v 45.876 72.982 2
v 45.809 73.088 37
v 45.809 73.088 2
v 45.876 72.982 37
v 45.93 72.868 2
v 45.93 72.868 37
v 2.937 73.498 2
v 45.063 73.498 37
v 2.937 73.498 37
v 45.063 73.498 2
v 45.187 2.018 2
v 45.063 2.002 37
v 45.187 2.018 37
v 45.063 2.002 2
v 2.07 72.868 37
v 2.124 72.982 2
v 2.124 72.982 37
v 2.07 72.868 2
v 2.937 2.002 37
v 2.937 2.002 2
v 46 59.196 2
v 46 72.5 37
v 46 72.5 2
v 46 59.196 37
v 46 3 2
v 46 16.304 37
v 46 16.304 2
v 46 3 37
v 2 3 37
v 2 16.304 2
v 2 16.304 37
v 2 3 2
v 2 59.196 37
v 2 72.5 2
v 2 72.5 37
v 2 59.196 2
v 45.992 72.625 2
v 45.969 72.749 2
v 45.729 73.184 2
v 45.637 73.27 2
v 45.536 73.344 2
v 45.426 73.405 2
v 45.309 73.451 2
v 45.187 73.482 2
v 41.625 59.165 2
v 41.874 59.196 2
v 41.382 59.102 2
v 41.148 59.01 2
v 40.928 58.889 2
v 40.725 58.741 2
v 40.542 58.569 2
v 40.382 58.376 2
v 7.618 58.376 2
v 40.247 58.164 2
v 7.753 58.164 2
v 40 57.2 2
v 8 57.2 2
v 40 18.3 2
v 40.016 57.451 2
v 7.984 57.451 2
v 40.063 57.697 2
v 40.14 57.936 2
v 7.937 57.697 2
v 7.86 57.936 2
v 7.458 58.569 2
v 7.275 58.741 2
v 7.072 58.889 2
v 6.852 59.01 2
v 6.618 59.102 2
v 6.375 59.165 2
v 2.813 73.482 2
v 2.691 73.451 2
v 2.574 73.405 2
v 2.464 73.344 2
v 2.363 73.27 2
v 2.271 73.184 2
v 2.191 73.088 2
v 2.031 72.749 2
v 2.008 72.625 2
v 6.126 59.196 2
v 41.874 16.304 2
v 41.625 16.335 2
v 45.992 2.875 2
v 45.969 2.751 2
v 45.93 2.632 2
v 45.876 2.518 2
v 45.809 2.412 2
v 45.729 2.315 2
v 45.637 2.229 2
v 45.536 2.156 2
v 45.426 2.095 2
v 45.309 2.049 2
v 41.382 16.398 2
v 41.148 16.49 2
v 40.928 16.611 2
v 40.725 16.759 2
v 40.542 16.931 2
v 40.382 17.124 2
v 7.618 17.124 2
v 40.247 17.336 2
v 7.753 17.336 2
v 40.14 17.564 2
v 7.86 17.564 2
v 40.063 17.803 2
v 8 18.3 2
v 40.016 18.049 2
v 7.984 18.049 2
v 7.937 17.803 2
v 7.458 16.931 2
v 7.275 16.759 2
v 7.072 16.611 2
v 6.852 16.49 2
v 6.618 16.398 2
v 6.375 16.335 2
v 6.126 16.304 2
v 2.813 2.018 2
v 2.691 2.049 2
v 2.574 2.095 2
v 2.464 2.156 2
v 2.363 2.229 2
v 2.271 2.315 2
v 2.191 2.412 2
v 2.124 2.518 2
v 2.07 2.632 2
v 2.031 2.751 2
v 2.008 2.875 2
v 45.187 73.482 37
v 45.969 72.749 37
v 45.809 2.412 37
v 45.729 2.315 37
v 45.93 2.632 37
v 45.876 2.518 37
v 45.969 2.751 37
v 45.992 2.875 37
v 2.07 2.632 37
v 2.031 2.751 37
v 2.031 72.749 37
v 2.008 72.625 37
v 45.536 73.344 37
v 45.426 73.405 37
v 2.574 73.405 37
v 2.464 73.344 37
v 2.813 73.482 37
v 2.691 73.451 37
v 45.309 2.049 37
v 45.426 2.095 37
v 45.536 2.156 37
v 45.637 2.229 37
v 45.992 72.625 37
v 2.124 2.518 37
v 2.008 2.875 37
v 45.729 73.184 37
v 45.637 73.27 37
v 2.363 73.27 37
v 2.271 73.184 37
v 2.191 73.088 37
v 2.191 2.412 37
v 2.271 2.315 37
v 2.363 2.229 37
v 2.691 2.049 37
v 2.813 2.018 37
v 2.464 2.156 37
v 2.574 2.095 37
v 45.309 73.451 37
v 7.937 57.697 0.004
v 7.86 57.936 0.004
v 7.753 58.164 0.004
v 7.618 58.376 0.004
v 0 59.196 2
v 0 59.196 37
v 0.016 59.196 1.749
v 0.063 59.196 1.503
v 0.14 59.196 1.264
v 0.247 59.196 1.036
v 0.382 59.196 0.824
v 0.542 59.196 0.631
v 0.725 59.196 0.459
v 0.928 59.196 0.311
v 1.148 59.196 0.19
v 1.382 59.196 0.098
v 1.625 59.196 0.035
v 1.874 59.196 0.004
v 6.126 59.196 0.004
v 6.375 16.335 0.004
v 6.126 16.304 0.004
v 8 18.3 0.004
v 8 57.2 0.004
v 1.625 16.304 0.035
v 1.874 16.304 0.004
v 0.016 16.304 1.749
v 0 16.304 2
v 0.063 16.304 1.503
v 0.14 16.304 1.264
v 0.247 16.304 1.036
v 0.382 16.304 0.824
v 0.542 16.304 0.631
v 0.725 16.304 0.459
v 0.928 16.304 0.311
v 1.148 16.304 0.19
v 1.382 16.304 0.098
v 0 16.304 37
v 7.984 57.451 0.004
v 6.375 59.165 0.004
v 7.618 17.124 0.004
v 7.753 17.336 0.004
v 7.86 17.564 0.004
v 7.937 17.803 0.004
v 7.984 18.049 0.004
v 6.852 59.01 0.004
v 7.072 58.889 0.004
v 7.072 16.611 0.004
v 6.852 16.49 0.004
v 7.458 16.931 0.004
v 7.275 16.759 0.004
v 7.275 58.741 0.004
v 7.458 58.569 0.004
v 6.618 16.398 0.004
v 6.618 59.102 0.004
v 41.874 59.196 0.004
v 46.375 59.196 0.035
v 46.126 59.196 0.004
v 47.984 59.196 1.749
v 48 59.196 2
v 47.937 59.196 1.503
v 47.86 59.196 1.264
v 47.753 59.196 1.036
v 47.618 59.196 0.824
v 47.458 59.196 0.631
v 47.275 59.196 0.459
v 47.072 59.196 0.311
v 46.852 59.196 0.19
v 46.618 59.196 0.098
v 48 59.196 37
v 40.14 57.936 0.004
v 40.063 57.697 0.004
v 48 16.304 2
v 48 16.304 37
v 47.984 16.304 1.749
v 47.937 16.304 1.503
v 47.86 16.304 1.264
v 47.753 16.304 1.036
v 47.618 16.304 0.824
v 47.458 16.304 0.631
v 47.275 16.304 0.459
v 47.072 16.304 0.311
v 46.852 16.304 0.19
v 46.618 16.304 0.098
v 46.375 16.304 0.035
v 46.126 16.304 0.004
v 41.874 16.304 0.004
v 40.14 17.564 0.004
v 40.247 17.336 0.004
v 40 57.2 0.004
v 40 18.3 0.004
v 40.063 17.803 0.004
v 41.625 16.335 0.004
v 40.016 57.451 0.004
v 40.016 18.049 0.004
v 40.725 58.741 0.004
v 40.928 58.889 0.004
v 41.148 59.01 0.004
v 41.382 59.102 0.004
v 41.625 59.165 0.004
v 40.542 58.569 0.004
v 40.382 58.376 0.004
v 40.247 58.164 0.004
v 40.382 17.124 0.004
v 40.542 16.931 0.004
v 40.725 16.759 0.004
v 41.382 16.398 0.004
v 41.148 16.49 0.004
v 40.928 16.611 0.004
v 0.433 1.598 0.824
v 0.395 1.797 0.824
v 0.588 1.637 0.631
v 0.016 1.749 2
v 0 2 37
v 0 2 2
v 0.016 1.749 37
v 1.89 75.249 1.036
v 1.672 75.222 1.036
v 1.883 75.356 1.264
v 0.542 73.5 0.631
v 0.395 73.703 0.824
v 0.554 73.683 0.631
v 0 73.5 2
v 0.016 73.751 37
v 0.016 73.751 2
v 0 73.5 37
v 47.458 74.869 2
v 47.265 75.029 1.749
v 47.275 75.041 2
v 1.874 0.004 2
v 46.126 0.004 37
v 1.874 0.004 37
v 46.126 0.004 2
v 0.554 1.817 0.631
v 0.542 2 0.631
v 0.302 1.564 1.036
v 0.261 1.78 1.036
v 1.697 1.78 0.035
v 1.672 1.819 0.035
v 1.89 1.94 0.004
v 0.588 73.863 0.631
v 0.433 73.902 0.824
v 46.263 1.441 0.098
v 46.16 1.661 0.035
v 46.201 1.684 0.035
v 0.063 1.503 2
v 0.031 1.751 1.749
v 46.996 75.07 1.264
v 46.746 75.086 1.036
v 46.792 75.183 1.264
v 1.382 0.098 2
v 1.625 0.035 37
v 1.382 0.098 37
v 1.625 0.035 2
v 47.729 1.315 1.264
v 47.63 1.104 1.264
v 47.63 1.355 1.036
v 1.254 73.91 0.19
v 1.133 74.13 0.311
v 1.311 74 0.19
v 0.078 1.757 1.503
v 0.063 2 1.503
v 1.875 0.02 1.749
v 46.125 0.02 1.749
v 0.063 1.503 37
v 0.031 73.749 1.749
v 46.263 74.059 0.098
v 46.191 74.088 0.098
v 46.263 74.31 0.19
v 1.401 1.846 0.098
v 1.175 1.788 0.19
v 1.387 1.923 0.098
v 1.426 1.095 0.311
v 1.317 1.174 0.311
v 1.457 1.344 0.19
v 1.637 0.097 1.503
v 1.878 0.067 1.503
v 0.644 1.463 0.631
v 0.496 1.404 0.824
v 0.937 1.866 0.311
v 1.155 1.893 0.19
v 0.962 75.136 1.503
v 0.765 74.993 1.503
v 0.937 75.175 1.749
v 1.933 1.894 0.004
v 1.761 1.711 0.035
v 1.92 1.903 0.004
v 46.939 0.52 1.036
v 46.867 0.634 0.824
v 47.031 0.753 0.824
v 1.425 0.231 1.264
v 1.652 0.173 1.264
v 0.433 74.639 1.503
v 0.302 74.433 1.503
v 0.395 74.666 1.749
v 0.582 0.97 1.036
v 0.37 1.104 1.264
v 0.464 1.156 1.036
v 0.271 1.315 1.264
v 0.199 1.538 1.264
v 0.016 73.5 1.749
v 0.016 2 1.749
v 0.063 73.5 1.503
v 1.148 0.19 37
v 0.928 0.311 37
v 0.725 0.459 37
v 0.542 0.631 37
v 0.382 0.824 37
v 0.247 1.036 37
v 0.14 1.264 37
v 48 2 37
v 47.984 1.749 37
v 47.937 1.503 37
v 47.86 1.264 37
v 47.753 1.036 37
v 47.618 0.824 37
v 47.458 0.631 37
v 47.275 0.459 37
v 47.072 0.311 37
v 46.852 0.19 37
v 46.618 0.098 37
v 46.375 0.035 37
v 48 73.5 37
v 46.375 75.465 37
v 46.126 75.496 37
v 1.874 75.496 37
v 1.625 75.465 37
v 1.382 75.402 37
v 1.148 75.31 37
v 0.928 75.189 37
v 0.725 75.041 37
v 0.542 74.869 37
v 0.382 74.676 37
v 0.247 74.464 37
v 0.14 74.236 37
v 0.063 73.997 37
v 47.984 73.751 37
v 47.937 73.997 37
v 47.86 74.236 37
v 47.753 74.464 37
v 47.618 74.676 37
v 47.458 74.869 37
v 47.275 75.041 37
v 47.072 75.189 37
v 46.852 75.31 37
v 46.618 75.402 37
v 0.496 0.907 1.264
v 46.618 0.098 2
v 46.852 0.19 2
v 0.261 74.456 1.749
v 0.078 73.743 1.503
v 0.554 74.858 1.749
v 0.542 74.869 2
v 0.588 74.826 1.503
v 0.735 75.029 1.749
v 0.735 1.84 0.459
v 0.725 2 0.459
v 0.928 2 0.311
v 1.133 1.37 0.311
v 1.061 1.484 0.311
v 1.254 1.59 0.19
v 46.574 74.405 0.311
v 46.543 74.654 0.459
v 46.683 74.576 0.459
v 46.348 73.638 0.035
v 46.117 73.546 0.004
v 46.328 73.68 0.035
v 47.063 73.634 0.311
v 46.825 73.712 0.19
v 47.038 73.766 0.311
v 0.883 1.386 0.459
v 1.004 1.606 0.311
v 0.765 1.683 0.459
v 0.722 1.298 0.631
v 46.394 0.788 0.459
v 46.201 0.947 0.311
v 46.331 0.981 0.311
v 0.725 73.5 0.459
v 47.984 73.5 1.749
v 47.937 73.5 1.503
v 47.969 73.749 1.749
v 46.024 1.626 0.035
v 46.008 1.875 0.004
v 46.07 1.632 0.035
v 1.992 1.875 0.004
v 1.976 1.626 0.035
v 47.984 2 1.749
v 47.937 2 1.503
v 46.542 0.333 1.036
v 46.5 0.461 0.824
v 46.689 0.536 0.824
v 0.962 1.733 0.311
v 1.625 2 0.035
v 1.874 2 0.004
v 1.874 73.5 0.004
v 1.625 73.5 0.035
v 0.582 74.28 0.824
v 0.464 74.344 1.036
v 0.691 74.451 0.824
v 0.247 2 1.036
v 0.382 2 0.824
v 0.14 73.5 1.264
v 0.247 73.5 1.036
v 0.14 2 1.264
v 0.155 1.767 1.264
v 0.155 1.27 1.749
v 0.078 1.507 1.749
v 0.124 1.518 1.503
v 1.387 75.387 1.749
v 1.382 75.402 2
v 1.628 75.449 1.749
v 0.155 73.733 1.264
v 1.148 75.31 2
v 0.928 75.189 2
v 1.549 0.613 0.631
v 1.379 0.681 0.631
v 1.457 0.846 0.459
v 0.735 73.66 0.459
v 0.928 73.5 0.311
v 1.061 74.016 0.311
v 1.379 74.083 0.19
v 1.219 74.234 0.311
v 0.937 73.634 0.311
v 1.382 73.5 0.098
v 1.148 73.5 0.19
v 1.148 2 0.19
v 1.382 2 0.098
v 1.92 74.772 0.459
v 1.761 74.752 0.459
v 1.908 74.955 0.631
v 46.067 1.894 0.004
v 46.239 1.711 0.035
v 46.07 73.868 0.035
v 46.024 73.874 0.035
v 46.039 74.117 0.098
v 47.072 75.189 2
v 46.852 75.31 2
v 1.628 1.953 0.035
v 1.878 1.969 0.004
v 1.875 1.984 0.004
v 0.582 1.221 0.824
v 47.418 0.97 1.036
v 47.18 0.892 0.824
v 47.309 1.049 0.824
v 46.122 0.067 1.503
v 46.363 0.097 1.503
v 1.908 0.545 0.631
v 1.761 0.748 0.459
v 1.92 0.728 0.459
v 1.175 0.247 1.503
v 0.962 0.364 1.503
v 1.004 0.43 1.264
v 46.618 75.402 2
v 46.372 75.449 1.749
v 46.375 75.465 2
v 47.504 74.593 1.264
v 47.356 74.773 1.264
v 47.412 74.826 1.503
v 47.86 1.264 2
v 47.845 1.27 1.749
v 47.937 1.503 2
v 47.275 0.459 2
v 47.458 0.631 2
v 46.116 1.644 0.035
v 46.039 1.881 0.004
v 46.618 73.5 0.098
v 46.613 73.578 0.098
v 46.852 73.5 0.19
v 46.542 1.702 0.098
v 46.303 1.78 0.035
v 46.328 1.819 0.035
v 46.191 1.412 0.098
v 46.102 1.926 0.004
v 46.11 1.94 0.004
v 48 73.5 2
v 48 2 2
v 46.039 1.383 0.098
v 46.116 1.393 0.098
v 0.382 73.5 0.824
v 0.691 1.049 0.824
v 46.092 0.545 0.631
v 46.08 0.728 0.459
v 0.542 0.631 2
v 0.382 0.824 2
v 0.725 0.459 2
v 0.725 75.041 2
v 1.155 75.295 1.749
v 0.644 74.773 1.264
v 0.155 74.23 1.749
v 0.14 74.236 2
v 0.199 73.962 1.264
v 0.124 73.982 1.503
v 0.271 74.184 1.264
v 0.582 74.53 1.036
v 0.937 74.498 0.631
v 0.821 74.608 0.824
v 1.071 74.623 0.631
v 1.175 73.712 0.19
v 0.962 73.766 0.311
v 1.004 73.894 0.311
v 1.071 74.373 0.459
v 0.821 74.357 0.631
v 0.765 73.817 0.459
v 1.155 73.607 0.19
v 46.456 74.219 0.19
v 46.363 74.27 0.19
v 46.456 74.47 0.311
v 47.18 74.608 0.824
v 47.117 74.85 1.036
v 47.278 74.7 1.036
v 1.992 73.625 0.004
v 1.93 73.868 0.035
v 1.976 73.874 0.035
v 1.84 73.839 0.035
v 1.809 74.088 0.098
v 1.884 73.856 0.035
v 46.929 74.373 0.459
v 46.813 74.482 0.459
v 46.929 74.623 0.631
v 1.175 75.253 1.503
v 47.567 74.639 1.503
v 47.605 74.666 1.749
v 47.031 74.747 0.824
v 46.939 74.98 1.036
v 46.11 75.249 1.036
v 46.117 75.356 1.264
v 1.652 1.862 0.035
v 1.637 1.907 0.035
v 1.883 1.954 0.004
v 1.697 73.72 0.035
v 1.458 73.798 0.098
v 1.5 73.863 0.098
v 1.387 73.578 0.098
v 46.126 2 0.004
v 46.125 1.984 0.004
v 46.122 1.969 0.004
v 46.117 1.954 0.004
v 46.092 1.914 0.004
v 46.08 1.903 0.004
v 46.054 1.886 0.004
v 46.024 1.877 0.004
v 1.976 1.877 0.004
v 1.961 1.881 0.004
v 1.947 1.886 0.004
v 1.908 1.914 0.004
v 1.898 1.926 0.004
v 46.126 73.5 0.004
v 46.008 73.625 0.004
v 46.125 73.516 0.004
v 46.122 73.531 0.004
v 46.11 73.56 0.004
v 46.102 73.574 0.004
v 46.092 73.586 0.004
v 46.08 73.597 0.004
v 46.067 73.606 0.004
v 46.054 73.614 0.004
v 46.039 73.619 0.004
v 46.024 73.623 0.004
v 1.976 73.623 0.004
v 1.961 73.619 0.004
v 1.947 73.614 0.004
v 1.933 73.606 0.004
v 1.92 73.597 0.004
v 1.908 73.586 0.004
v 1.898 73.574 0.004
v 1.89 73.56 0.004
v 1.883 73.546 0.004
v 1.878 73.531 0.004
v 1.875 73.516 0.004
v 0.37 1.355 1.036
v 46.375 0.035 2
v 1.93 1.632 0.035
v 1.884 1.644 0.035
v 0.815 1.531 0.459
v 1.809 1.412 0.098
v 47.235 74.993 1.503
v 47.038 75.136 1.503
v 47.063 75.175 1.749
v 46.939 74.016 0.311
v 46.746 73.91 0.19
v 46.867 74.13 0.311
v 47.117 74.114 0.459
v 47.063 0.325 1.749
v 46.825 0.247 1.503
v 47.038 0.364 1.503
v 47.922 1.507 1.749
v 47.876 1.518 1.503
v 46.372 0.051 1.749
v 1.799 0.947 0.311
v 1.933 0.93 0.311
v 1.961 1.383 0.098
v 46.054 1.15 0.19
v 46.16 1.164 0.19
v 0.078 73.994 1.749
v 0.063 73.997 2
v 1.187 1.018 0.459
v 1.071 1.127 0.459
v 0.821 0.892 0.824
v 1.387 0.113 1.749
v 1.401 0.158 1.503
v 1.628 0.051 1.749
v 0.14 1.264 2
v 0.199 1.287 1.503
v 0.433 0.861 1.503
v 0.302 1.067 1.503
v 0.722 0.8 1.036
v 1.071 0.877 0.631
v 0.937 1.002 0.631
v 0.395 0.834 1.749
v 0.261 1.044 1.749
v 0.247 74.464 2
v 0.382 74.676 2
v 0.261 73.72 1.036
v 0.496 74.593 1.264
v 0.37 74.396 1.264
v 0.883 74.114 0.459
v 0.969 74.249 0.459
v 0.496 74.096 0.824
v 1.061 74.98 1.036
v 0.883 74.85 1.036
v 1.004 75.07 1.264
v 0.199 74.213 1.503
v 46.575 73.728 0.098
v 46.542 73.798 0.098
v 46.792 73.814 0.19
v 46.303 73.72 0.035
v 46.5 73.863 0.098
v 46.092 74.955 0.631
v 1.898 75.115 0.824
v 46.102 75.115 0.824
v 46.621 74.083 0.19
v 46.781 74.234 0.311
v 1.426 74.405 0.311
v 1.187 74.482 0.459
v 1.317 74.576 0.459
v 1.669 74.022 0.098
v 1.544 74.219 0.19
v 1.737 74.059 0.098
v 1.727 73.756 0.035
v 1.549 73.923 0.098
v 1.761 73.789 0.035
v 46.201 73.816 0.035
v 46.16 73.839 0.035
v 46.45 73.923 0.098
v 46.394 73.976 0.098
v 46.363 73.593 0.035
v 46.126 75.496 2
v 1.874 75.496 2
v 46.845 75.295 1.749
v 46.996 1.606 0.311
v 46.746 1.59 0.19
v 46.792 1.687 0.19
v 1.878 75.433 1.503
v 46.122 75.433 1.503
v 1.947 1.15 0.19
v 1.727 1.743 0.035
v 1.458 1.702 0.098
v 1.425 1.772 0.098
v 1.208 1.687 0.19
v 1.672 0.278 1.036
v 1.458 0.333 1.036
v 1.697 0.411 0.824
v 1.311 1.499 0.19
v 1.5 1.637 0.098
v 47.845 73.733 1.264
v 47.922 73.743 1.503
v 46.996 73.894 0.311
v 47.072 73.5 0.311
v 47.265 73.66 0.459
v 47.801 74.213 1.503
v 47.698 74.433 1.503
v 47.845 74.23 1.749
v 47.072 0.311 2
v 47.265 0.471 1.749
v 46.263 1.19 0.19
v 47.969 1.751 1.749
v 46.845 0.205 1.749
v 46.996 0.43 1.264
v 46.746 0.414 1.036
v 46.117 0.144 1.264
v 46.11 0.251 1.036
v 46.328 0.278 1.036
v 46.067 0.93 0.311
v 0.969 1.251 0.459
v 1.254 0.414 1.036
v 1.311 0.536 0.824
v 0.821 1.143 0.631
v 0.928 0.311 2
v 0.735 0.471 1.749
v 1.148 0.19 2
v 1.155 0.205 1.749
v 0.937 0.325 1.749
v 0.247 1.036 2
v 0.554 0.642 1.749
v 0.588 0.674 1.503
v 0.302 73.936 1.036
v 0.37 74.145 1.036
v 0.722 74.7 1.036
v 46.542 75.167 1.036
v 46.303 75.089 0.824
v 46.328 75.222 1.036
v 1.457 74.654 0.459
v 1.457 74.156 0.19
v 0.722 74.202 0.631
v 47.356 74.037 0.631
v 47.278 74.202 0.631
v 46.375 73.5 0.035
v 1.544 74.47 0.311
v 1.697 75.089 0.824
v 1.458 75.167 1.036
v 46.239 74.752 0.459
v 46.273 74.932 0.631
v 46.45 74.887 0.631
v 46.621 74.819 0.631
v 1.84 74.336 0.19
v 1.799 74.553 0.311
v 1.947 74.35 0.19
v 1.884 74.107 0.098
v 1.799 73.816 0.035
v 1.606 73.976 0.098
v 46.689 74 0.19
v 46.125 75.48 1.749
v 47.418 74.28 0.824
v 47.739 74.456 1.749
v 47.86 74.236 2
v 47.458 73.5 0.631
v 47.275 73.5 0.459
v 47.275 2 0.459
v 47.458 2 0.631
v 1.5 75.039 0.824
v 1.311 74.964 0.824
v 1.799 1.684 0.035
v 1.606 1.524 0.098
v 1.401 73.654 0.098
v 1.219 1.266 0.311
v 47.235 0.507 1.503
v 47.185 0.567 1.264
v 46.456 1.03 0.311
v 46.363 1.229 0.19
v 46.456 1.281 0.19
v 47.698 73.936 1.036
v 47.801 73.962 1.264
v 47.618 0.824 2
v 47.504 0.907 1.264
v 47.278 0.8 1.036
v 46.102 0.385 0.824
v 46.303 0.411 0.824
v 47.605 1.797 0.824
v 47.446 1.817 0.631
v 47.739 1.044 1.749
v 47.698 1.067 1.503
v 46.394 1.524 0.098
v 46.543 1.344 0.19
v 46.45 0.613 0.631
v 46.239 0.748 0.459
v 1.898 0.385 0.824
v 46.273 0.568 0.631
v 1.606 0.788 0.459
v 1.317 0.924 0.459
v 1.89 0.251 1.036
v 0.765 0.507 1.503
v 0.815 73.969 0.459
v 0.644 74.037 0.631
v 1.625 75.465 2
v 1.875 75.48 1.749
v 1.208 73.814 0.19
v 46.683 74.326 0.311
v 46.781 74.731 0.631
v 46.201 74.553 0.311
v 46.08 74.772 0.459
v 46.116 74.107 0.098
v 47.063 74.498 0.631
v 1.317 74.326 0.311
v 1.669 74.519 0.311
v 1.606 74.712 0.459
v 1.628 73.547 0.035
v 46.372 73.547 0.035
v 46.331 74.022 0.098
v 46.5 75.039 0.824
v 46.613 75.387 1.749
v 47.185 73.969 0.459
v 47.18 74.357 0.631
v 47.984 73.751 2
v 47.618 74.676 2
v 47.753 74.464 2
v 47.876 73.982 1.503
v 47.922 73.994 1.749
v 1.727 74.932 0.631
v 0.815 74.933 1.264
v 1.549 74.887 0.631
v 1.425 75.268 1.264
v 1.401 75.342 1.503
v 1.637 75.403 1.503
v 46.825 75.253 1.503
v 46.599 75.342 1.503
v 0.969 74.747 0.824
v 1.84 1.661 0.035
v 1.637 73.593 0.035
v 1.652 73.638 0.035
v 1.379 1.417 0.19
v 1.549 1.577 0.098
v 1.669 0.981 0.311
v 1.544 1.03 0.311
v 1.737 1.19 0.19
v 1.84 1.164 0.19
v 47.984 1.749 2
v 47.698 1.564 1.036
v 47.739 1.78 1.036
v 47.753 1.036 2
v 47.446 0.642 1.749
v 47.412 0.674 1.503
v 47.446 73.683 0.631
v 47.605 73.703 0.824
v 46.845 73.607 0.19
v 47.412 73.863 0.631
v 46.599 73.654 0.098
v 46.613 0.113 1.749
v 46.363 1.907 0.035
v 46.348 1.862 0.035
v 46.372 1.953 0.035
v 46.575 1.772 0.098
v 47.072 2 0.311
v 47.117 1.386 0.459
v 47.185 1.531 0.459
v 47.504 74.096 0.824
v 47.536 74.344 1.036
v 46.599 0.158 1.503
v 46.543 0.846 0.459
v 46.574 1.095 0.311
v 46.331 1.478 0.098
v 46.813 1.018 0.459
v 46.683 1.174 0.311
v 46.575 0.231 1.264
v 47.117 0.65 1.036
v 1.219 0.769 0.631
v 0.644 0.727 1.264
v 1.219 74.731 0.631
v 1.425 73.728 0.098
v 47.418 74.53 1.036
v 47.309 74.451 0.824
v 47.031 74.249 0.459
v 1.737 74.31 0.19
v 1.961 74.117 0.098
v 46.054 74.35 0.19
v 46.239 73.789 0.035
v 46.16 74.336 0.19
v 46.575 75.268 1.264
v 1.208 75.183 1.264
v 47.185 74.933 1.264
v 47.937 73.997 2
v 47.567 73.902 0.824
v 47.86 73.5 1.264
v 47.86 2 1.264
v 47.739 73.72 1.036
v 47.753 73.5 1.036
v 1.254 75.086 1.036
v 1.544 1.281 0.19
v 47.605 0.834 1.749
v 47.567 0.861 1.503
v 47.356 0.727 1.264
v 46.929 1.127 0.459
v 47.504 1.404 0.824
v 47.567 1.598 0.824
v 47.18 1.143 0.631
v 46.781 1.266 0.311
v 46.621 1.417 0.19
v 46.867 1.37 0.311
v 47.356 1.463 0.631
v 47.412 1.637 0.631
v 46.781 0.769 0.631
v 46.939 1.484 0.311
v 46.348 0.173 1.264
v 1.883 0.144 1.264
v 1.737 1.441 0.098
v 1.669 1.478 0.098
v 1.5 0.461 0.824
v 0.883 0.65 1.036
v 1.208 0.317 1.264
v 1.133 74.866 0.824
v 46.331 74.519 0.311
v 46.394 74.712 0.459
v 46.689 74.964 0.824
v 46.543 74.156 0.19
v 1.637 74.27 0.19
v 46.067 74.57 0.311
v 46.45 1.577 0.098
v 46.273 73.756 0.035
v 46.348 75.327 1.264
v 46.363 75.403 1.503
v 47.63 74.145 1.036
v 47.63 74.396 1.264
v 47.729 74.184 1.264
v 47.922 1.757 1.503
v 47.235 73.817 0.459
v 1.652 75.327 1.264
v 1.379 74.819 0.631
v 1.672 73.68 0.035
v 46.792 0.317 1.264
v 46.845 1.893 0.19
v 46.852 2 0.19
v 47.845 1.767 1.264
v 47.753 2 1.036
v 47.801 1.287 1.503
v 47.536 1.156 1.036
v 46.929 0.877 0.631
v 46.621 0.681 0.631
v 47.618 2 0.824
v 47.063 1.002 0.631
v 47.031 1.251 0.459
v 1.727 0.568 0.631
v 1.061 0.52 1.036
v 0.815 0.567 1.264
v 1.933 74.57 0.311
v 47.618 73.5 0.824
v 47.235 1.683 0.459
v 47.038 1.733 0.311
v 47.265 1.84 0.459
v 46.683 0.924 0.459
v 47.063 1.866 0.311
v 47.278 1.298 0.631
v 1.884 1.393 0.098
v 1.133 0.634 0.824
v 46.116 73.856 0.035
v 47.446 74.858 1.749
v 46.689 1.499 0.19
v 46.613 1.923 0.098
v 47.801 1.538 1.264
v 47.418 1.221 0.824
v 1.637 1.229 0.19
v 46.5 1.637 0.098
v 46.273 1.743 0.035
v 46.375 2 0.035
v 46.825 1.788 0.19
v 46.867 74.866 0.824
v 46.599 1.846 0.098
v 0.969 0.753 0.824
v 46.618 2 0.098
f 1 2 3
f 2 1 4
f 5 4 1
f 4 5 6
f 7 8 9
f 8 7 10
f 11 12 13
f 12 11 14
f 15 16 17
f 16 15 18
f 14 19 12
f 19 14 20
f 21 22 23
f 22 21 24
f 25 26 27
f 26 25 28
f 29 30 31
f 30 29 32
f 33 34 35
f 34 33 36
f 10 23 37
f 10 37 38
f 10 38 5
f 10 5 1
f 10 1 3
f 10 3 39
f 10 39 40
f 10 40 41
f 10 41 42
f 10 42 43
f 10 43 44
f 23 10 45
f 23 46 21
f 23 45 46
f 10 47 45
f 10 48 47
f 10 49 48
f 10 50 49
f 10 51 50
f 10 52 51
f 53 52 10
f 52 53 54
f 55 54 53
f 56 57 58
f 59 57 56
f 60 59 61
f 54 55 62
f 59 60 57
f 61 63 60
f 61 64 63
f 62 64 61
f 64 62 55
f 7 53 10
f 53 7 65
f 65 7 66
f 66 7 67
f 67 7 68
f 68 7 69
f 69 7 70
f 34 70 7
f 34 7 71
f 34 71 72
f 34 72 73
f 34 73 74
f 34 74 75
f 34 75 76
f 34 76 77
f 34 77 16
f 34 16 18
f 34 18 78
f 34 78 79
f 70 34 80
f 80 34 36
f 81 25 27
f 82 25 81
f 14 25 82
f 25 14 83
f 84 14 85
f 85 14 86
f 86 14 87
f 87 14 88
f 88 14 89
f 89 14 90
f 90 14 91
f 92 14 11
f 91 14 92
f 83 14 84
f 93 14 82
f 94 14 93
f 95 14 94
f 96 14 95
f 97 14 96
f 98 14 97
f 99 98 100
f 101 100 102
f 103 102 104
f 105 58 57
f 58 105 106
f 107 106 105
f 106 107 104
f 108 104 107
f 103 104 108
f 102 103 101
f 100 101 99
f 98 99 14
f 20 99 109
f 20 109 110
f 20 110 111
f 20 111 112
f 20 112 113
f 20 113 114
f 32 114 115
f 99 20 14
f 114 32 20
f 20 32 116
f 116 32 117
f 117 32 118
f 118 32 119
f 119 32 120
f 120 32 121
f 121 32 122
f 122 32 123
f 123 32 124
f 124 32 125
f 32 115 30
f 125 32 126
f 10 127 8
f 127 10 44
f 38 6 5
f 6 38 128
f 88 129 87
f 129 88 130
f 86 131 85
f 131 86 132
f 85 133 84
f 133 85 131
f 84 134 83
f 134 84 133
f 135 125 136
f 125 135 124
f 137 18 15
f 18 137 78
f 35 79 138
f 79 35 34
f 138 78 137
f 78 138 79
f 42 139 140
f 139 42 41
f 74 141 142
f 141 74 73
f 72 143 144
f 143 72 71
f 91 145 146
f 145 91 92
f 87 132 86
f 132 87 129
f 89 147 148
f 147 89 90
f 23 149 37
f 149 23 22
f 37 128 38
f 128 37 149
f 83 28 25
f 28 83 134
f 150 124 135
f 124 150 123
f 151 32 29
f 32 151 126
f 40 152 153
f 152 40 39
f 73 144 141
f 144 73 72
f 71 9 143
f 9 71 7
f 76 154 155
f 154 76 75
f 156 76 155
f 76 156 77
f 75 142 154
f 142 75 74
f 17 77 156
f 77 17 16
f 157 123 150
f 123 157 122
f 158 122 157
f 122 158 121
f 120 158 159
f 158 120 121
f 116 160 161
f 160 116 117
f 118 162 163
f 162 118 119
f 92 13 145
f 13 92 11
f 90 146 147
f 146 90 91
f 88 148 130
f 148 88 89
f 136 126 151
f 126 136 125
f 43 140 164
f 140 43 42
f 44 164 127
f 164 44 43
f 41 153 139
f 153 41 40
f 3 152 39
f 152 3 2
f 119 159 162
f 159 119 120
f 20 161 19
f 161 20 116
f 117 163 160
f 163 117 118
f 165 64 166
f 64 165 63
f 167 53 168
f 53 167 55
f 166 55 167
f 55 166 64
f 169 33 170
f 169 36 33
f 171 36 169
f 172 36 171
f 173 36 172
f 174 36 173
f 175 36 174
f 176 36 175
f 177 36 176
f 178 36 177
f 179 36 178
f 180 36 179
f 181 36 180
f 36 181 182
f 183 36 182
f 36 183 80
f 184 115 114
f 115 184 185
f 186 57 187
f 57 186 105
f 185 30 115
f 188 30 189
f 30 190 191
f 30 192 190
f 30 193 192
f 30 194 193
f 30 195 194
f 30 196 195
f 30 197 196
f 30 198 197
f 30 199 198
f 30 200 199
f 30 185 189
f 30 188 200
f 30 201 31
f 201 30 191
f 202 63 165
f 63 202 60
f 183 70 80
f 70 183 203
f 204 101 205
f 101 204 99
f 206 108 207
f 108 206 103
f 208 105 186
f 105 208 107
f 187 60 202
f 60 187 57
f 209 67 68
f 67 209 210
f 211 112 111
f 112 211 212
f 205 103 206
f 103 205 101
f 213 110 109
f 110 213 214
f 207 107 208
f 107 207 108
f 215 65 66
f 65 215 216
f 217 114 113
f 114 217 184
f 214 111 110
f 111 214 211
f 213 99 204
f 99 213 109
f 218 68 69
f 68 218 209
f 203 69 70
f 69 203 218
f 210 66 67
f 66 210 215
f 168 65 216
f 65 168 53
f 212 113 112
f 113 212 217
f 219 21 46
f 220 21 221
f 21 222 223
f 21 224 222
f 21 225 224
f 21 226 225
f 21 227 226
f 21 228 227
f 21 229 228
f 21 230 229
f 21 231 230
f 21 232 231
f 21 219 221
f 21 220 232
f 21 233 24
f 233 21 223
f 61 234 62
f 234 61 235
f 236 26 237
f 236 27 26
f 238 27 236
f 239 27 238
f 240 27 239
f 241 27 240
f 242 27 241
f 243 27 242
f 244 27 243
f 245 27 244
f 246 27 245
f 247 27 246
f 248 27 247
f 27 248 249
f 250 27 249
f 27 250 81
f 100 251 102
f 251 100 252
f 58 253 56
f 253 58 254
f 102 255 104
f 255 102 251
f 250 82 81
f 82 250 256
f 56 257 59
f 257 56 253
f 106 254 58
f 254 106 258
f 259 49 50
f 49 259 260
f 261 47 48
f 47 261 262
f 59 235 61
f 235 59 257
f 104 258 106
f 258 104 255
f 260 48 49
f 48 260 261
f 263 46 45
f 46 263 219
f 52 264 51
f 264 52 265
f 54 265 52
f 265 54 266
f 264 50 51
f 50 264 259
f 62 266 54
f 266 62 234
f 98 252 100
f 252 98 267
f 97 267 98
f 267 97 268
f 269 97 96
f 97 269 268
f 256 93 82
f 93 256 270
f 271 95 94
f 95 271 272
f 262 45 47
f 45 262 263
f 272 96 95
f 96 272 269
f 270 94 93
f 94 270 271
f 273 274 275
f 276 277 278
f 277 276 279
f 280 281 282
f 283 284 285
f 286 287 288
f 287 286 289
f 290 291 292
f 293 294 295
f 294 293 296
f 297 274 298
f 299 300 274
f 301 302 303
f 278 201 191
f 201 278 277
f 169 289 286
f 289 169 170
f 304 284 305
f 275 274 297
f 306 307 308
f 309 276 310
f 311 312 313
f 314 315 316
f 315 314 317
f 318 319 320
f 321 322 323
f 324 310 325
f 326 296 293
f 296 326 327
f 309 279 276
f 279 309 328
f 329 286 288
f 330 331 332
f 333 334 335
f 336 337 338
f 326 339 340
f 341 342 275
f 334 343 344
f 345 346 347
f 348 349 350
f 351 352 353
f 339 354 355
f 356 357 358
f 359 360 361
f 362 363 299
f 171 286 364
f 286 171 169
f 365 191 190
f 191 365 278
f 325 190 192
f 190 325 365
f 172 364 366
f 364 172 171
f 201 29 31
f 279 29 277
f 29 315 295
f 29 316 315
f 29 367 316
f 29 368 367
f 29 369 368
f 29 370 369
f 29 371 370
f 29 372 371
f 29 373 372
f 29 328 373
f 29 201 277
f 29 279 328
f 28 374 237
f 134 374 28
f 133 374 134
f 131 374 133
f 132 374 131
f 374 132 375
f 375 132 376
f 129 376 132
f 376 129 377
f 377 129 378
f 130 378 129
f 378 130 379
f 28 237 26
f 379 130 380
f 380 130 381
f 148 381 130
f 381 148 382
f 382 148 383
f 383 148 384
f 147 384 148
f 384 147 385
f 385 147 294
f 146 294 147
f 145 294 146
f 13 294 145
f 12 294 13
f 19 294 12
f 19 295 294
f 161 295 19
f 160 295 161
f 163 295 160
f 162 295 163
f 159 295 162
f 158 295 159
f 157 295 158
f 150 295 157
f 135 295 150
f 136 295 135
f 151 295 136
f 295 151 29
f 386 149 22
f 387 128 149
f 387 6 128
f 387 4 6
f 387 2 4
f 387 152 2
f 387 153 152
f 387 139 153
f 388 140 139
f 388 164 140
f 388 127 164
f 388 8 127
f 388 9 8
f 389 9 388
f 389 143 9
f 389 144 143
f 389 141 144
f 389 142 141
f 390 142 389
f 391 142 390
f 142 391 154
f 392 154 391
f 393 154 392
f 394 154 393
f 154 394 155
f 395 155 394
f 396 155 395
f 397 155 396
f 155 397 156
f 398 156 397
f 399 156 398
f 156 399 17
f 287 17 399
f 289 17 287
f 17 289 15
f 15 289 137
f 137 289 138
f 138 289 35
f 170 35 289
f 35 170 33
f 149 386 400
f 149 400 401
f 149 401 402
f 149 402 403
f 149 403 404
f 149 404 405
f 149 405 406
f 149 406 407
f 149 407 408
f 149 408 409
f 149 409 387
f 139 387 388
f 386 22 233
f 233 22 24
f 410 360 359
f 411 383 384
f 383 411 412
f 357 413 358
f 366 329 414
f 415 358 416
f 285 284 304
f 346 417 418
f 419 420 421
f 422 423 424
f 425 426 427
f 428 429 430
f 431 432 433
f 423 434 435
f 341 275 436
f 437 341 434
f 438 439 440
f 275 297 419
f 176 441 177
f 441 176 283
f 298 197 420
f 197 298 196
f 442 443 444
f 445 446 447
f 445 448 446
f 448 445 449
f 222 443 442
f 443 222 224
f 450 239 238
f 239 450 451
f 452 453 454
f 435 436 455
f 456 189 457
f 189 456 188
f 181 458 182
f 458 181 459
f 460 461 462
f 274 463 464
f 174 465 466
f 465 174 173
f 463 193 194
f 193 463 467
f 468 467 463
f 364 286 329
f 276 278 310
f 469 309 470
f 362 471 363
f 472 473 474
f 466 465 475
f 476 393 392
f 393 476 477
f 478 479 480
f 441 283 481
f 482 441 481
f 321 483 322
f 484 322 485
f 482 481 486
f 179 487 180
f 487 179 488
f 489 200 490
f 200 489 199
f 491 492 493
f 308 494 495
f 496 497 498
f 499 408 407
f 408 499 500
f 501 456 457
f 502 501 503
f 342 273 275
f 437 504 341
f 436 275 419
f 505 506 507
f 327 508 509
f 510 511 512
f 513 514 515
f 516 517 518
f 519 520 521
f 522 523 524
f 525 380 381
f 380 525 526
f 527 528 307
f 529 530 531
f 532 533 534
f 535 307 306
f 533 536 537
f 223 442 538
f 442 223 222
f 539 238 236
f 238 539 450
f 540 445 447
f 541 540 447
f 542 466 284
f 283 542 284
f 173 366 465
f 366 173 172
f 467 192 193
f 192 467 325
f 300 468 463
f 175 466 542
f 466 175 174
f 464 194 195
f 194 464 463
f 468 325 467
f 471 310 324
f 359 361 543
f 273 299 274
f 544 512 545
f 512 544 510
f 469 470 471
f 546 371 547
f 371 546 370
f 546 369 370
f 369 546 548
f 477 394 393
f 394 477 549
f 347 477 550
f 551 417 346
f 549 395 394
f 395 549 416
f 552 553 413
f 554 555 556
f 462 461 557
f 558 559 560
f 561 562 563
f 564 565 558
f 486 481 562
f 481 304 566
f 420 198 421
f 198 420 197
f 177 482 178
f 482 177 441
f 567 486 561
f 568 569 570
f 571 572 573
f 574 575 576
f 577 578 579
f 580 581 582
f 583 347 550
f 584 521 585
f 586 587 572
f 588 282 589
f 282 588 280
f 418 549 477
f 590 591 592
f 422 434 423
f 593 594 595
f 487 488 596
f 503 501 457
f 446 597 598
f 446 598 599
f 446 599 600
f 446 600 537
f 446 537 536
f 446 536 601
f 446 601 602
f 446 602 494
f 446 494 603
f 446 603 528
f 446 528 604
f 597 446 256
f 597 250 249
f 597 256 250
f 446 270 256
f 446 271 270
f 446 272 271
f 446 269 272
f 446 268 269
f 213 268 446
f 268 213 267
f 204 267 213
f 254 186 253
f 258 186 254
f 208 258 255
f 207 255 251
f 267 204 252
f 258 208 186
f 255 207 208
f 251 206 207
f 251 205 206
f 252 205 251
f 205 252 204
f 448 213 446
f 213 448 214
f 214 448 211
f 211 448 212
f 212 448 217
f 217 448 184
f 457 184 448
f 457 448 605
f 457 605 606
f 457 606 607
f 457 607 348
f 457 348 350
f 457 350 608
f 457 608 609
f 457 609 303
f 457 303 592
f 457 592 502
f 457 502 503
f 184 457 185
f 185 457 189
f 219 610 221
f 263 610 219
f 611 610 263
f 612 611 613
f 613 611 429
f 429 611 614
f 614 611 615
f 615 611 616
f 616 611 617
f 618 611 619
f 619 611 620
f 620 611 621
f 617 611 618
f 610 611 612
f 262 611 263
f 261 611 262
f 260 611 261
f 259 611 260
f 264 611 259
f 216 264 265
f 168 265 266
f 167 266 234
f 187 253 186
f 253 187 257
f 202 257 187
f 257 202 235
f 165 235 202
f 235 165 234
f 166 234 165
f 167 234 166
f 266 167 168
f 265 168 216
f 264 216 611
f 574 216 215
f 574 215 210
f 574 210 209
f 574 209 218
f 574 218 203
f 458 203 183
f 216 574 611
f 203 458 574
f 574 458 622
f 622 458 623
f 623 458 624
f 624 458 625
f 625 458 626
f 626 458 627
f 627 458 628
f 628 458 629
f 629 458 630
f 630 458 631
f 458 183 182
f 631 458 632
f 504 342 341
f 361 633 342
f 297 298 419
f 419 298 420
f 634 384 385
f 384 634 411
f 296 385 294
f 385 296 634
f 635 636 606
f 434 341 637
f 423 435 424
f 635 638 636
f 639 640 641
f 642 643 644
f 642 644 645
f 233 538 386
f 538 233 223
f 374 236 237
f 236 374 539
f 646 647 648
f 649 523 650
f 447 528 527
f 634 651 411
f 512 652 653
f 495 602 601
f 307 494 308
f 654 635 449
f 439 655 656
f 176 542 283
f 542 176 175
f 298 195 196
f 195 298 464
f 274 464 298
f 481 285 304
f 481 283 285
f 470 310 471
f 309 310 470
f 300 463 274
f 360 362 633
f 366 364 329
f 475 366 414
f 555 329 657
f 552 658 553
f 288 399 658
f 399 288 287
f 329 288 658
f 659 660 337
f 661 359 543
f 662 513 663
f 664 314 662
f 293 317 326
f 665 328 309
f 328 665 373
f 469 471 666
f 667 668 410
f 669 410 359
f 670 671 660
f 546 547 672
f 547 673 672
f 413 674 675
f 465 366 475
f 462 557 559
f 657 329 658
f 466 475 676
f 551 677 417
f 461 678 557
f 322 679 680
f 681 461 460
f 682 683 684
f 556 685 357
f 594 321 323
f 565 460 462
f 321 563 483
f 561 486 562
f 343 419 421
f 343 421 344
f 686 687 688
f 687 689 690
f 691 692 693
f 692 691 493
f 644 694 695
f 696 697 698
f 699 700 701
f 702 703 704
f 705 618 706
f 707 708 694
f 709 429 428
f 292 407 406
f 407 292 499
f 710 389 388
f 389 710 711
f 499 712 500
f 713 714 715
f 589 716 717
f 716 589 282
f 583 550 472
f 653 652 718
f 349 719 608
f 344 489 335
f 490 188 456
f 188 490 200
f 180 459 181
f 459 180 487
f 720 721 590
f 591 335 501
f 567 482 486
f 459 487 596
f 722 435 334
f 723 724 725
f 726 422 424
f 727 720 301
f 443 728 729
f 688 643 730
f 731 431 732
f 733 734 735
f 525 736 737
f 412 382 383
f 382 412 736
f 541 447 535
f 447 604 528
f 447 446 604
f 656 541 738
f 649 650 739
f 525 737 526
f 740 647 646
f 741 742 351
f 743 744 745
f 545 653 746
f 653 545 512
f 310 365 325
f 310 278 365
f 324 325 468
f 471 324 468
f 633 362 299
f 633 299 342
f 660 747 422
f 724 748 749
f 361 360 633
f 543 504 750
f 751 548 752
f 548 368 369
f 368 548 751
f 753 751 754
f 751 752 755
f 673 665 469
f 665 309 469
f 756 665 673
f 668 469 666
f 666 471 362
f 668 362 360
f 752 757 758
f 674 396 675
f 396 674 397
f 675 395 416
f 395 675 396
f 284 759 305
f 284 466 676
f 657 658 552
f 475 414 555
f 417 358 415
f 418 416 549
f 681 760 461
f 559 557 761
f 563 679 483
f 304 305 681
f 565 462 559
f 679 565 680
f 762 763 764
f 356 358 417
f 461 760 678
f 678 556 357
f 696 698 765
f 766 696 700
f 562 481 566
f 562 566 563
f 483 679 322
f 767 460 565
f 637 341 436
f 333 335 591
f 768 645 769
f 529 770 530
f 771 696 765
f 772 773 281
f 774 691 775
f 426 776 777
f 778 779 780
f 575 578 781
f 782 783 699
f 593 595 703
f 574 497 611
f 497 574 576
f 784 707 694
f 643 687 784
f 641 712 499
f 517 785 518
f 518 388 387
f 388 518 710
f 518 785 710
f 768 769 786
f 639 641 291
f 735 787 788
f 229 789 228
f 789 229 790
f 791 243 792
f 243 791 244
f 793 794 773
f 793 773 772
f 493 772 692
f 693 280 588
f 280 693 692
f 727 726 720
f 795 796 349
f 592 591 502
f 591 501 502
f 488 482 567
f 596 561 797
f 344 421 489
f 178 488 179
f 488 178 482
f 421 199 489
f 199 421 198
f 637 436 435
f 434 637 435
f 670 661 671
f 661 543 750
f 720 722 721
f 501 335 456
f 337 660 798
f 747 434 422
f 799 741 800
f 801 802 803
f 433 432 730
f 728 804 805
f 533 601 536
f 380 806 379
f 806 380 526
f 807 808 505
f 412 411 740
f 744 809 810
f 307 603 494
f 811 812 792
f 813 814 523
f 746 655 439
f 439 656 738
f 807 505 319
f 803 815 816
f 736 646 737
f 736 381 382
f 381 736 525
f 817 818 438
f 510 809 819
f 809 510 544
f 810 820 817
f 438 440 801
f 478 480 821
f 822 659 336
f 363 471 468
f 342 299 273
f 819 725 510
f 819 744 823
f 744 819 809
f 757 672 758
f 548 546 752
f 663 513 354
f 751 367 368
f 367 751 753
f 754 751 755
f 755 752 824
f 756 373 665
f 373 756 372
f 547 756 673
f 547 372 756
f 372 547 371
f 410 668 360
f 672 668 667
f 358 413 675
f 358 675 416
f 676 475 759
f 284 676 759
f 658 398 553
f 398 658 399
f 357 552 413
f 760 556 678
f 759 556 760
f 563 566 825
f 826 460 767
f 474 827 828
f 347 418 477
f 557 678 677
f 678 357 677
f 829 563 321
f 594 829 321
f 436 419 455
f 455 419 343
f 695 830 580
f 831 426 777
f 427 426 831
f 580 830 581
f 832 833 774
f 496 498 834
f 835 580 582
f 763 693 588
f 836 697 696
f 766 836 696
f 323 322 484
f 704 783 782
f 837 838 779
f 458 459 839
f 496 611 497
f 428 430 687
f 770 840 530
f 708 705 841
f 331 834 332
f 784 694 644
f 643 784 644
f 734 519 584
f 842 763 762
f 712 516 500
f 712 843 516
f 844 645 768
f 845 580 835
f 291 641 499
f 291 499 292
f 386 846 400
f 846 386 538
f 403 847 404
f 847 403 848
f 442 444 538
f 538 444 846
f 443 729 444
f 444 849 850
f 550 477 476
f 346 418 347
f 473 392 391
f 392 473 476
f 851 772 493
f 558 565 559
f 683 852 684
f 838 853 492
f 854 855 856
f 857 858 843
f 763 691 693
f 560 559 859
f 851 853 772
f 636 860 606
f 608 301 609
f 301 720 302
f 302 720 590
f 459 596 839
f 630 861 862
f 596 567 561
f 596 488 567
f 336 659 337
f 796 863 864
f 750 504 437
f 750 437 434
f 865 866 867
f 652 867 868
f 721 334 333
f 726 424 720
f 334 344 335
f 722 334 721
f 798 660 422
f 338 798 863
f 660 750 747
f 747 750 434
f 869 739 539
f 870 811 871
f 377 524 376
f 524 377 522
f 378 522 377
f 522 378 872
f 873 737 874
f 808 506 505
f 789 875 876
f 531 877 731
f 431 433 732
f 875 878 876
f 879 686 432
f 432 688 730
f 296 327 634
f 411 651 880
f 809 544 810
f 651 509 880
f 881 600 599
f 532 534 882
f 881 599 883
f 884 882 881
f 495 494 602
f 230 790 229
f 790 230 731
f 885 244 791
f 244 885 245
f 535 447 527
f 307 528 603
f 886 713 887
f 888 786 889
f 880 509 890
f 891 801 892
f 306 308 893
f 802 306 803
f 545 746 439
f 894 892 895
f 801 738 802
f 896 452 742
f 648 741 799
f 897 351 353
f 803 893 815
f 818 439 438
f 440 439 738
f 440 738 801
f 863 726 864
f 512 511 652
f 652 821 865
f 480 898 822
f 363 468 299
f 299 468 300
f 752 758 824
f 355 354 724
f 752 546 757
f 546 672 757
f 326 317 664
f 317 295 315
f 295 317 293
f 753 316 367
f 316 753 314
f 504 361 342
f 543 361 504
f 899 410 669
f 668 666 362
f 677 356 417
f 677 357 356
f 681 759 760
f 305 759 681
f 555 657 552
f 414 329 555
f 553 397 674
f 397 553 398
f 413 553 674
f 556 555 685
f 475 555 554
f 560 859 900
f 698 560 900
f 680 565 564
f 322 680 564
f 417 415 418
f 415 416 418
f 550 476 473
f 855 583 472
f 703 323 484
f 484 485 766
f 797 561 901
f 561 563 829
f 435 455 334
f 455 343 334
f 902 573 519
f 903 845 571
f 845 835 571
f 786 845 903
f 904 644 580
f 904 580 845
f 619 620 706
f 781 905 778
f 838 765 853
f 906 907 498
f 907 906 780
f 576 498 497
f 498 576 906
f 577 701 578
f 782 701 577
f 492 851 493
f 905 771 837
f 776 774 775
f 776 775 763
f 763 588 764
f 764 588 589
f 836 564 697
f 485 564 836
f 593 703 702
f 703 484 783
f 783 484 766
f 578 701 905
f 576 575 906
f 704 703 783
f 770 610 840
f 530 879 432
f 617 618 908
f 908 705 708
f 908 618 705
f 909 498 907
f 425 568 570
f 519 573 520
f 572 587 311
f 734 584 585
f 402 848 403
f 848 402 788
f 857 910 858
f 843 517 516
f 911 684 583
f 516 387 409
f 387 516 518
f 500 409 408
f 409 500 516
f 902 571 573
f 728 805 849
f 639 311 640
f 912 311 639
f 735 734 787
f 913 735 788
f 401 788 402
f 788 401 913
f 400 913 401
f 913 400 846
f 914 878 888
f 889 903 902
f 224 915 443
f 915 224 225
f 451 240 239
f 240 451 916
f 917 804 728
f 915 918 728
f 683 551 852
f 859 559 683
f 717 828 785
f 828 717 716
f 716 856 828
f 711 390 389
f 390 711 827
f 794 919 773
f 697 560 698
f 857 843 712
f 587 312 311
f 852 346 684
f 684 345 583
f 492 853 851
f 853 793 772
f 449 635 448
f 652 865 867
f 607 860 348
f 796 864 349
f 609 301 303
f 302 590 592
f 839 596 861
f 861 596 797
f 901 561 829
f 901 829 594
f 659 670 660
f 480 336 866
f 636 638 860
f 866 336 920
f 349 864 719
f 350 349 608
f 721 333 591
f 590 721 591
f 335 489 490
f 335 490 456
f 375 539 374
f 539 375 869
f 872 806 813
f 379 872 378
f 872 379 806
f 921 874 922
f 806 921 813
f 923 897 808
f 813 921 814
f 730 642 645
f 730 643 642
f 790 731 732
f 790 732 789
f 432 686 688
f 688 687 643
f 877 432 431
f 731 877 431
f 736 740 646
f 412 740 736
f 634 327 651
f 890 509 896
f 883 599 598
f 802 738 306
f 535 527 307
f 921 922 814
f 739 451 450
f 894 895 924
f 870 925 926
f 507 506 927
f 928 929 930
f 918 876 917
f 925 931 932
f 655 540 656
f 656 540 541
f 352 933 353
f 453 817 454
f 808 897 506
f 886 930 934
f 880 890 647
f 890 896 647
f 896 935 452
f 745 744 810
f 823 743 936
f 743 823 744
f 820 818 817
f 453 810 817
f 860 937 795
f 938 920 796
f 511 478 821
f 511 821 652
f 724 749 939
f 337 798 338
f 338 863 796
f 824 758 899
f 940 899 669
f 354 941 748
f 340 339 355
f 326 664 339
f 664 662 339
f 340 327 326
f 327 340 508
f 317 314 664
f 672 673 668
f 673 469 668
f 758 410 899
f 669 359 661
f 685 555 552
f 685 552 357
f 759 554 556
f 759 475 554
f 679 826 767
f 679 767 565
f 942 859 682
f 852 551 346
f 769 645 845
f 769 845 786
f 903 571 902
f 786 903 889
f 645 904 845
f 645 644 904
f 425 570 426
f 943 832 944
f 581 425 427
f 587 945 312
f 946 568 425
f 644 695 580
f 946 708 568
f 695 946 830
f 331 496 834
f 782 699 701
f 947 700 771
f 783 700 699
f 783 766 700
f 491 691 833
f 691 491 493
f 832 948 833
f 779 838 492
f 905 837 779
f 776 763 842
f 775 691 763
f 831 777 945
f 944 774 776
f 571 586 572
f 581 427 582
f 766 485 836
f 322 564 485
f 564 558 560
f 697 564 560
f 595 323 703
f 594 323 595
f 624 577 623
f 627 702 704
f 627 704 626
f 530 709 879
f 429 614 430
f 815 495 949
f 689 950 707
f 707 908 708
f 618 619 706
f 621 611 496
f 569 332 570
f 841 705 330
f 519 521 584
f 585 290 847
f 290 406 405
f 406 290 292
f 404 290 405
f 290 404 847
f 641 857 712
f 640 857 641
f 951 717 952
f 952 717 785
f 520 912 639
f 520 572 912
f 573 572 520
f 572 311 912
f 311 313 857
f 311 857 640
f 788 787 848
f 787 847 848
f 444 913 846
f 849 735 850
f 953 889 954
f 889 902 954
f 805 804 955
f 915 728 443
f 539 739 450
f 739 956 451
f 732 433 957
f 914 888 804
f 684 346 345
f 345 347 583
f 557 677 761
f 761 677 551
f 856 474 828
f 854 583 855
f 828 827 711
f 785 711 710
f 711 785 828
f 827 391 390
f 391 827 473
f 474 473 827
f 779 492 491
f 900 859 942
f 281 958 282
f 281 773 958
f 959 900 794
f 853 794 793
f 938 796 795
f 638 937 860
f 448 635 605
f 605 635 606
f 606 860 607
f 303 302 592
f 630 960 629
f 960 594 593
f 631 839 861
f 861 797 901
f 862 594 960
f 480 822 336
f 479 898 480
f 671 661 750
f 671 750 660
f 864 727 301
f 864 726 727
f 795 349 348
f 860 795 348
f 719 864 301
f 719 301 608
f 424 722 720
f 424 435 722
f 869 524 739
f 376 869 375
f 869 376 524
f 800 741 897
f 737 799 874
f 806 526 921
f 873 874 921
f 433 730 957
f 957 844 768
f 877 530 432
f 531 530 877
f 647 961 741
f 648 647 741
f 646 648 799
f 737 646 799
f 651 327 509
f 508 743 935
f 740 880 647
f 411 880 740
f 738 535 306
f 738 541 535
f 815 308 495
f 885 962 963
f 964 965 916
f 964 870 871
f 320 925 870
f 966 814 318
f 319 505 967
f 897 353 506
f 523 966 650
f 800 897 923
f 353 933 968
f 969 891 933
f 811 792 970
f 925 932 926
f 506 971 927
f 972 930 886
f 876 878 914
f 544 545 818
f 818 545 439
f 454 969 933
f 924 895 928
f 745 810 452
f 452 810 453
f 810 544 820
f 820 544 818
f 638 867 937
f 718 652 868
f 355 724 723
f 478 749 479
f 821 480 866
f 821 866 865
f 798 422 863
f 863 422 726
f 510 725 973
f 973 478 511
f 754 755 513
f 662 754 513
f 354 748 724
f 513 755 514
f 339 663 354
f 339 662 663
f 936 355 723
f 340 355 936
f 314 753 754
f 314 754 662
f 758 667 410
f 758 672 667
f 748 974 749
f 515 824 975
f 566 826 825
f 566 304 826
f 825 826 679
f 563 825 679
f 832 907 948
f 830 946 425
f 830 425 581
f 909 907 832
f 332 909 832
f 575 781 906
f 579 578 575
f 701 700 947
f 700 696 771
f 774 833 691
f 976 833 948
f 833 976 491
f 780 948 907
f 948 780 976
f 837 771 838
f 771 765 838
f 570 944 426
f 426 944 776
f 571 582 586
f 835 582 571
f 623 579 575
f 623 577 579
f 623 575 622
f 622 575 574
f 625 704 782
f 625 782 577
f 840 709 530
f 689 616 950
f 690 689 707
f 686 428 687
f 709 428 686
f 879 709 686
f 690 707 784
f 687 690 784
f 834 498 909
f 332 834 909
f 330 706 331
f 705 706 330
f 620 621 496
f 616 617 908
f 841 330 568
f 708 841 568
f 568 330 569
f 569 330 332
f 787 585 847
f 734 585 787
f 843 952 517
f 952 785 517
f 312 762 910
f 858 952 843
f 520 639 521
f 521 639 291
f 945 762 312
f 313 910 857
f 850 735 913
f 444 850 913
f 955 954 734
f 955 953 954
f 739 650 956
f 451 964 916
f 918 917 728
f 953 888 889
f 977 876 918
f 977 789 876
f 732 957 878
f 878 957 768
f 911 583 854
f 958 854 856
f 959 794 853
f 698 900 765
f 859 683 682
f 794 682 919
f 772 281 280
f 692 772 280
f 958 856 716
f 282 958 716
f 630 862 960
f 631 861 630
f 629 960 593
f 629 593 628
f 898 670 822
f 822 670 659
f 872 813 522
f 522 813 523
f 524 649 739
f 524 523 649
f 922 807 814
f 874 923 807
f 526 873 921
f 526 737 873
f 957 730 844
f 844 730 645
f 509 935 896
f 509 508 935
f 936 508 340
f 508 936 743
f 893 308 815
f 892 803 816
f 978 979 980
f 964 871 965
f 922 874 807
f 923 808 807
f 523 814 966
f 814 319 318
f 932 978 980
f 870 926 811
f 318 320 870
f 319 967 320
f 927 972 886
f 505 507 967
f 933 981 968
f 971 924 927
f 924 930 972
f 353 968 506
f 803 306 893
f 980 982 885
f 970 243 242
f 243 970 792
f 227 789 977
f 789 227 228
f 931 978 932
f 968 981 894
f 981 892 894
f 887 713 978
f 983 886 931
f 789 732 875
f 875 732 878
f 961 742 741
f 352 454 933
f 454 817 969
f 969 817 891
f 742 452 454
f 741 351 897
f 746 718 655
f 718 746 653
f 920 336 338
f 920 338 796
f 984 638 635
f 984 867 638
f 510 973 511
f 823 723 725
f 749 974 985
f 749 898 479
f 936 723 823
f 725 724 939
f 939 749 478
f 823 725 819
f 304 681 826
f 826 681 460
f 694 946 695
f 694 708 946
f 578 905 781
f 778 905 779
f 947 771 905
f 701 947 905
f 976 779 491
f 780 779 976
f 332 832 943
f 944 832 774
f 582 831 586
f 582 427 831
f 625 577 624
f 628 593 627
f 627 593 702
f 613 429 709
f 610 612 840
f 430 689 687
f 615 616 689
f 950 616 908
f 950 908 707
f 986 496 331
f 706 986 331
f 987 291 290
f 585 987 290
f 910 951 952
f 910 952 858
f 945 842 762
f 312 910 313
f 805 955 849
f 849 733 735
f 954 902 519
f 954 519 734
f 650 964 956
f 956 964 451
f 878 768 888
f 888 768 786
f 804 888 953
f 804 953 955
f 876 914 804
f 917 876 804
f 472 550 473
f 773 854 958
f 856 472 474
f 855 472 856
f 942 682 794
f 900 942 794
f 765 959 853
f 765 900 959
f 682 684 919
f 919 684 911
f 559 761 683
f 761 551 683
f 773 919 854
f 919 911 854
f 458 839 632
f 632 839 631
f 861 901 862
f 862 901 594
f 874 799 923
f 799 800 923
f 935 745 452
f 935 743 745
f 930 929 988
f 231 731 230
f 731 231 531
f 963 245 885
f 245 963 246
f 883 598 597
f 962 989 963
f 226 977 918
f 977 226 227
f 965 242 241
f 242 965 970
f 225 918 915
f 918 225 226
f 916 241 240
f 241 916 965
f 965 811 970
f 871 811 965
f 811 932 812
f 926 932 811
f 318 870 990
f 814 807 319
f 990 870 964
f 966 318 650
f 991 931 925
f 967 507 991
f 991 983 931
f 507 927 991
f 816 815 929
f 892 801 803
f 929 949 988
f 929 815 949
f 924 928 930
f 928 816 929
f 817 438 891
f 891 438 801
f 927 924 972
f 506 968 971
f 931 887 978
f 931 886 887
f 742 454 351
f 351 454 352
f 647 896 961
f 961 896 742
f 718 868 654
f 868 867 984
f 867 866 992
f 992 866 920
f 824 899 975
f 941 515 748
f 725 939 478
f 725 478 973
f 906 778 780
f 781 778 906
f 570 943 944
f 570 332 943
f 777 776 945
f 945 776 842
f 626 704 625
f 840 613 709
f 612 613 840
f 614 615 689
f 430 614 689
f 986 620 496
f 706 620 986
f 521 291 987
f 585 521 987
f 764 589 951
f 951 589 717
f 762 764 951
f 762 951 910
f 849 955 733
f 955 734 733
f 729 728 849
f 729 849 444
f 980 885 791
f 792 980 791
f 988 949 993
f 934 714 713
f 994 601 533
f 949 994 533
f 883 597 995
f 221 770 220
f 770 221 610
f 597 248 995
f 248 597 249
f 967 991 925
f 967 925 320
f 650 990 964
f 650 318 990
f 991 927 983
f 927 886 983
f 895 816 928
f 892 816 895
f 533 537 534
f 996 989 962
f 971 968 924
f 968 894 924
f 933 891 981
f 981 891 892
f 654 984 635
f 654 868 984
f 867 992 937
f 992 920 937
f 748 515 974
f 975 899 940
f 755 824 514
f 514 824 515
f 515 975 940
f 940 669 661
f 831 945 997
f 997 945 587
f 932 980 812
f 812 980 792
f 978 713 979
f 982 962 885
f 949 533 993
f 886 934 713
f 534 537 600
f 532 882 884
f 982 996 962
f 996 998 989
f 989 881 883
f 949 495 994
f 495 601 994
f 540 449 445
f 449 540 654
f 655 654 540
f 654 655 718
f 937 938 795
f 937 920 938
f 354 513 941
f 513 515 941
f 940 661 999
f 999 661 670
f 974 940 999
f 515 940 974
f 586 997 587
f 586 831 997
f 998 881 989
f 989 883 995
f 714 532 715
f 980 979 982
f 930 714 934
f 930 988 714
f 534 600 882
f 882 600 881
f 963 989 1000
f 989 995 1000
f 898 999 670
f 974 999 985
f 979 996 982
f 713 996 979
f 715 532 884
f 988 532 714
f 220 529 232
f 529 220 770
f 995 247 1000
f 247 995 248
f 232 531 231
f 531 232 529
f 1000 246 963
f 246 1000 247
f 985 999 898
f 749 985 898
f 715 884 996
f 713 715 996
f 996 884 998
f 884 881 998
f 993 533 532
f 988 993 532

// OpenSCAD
// file: ../../lib/rounded_square.scad
$bleed = 1;
$rounding = 3;

module rounded_square(size) {
  inner_size = [
    size[0] - $rounding * 2,
    size[1] - $rounding * 2,
  ];

  minkowski() {
    translate([$rounding, $rounding, 0]) {
      square(inner_size);
    }
    circle($rounding);
  }
}
// file: ../../lib/layout.scad
$padding = 0.5;
$wall_thickness = 2;

function stack_height (size, count=1) = size * count + $padding;

function padded_offset (size, index=1) = (size + $padding * 2 + $wall_thickness) * index;

function offset (size, index=1) = (size + $wall_thickness) * index;

function pad (size) = size + $padding * 2;

module offset_cylinder(d, h) {
  translate([d / 2, d / 2, 0]) {
    cylinder(d=d, h=h);
  }
}

module offset_circle(d) {
  translate([d / 2, d / 2, 0]) {
    circle(d=d);
  }
}

module offset_square(size, center=false) {
  translate([size[0] / 2, size[1] / 2, 0]) {
    square(size, center=center);
  }
}
// file: ../../lib/rounded_cube.scad
include <./rounded_square.scad>

$bleed = 1;
$rounding = 3;

// Render a rounded cube
// flat_top: do not round the top edges
// flat_bottom: do not round the bottom edges
// flat: equals flat_top && flat_bottom
// 
// Limitations:
// requires height > $rounding * 2
// flat_top || flat_bottom requires height > $rounding
// flat_top && flat_bottom requires height > $bleed
module rounded_cube(
  size, 
  flat=false, 
  flat_top=false, 
  flat_bottom=false,
  side_rounding=-1
) {
  _flat = flat || (flat_top && flat_bottom);
  _flat_top = flat_top || flat;
  _flat_bottom = flat_bottom || flat;
  _rounding = min($rounding, size[2] / 2);
  _side_rounding = side_rounding > -1 ? side_rounding: $rounding;

  assert(_side_rounding >= $rounding, "side rounding cannot be less than rounding");

  top_height = _flat_top ? 0: _rounding;
  bottom_height = _flat_bottom ? 0: _rounding;

  cube_size = [
    size[0] - _rounding * 2,
    size[1] - _rounding * 2,
    size[2] - (top_height + bottom_height)
  ];

  if (_flat_top && _flat_bottom) {
     linear_extrude(cube_size[2]) {
       rounded_square([size[0], size[1]]);
     }
  } else {
    minkowski() {
      translate([_rounding, _rounding, bottom_height]) {
        if (_side_rounding != _rounding) {
          linear_extrude(cube_size[2]) {
            rounded_square([cube_size[0], cube_size[1]], $rounding=_side_rounding);
          }
        } else {
          cube(cube_size);
        }
      }

      if (_flat_top) {
        difference() {
          sphere(_rounding);
          cylinder(_rounding, _rounding, _rounding);
        }
      } else if (_flat_bottom) {
        difference() {
          sphere(_rounding);
          translate ([0, 0, -_rounding]) {
            cylinder(_rounding, _rounding, _rounding);
          }
        }
      } else {
        sphere(_rounding);
      }
    }
  }
}
// file: ../../lib/tile_tray.scad
include <./layout.scad>

$wall_thickness = 2;
$bleed = 0.01;
$padding = 0.5;
$inset = 6;
$cutout_fraction = 0.6;

// I have no idea why it needs to be this vaule
// Seems to be to do with how the cube handles rounding
magic_pill_number = 0.4;

function tile_rounding (size, pill=false) = pill ? min(size[0], size[1]) / 2  + magic_pill_number: 1;

module tile_cutout(
  tile_size, 
  count=1, 
  roof_height,
  left_cutout=false, 
  right_cutout=false,
  top_cutout=false,
  bottom_cutout=false,
  pill=false
) {
  // No need to render any cutout if the size is zero
  if (count > 0) {
    tray_size = [
      pad(tile_size[0]),
      pad(tile_size[1]),
      stack_height(tile_size[2], count) + $bleed,
    ];
  
    floor_height = roof_height - tray_size[2] + $bleed;
  
    translate([0, 0, floor_height]) {
      rounded_cube(tray_size, flat=true, $rounding=tile_rounding(tile_size, pill));
    }
    
    if (left_cutout) {
      left_cutout_size = [
        $inset * 2 + $wall_thickness,
        tray_size[1] * $cutout_fraction,
        roof_height + $bleed * 2,
      ];
  
      translate([-left_cutout_size[0] + $inset, (tray_size[1] - left_cutout_size[1]) / 2, 0]) {
        rounded_cube(left_cutout_size, flat=true);
      }
    }
  
    if (right_cutout) {
      right_cutout_size = [
        $inset * 2 + $wall_thickness,
        tray_size[1] * $cutout_fraction,
        roof_height + $bleed * 2,
      ];
  
      translate([tray_size[0] - $inset, (tray_size[1] - right_cutout_size[1]) / 2, 0]) {
        rounded_cube(right_cutout_size, flat=true);
      }
    }
  
    if (top_cutout) {
      top_cutout_size = [
        tray_size[0] * $cutout_fraction,
        $inset * 2 + $wall_thickness,
        roof_height + $bleed * 2,
      ];
  
      translate([
        (tray_size[0] - top_cutout_size[0]) / 2, 
        tray_size[1] + $wall_thickness - $inset,
        0
      ]) {
        rounded_cube(top_cutout_size, flat=true);
      }
    }
  
    if (bottom_cutout) {
      bottom_cutout_size = [
        tray_size[0] * $cutout_fraction,
        $inset * 2 + $wall_thickness,
        roof_height + $bleed * 2,
      ];
  
      translate([
        (tray_size[0] - bottom_cutout_size[0]) / 2, 
        0 - bottom_cutout_size[1] - $wall_thickness + $inset,
        0
      ]) {
        rounded_cube(bottom_cutout_size, flat=true);
      }
    }
  }
}
// main file
echo(version=version());

include <../../lib/tile_tray.scad>
include <../../lib/rounded_cube.scad>
include <../../lib/layout.scad>

// Config
$fn = 50;
// $fn = 10;
$wall_thickness = 2;
$padding = 2;
$rounding = 2;
$bleed = 0.01;

card_size = [
  40,
  67.5,
  33,
];

box_size = [
  padded_offset(card_size[0]) + $wall_thickness,
  padded_offset(card_size[1]) + $wall_thickness,
  stack_height(card_size[2]) + $wall_thickness,
];

difference() {
  rounded_cube(box_size, flat_top=true);

  translate([$wall_thickness, $wall_thickness, 0]) {
    tile_cutout(card_size, roof_height=box_size[2], left_cutout=true, right_cutout=true);
  }
}
